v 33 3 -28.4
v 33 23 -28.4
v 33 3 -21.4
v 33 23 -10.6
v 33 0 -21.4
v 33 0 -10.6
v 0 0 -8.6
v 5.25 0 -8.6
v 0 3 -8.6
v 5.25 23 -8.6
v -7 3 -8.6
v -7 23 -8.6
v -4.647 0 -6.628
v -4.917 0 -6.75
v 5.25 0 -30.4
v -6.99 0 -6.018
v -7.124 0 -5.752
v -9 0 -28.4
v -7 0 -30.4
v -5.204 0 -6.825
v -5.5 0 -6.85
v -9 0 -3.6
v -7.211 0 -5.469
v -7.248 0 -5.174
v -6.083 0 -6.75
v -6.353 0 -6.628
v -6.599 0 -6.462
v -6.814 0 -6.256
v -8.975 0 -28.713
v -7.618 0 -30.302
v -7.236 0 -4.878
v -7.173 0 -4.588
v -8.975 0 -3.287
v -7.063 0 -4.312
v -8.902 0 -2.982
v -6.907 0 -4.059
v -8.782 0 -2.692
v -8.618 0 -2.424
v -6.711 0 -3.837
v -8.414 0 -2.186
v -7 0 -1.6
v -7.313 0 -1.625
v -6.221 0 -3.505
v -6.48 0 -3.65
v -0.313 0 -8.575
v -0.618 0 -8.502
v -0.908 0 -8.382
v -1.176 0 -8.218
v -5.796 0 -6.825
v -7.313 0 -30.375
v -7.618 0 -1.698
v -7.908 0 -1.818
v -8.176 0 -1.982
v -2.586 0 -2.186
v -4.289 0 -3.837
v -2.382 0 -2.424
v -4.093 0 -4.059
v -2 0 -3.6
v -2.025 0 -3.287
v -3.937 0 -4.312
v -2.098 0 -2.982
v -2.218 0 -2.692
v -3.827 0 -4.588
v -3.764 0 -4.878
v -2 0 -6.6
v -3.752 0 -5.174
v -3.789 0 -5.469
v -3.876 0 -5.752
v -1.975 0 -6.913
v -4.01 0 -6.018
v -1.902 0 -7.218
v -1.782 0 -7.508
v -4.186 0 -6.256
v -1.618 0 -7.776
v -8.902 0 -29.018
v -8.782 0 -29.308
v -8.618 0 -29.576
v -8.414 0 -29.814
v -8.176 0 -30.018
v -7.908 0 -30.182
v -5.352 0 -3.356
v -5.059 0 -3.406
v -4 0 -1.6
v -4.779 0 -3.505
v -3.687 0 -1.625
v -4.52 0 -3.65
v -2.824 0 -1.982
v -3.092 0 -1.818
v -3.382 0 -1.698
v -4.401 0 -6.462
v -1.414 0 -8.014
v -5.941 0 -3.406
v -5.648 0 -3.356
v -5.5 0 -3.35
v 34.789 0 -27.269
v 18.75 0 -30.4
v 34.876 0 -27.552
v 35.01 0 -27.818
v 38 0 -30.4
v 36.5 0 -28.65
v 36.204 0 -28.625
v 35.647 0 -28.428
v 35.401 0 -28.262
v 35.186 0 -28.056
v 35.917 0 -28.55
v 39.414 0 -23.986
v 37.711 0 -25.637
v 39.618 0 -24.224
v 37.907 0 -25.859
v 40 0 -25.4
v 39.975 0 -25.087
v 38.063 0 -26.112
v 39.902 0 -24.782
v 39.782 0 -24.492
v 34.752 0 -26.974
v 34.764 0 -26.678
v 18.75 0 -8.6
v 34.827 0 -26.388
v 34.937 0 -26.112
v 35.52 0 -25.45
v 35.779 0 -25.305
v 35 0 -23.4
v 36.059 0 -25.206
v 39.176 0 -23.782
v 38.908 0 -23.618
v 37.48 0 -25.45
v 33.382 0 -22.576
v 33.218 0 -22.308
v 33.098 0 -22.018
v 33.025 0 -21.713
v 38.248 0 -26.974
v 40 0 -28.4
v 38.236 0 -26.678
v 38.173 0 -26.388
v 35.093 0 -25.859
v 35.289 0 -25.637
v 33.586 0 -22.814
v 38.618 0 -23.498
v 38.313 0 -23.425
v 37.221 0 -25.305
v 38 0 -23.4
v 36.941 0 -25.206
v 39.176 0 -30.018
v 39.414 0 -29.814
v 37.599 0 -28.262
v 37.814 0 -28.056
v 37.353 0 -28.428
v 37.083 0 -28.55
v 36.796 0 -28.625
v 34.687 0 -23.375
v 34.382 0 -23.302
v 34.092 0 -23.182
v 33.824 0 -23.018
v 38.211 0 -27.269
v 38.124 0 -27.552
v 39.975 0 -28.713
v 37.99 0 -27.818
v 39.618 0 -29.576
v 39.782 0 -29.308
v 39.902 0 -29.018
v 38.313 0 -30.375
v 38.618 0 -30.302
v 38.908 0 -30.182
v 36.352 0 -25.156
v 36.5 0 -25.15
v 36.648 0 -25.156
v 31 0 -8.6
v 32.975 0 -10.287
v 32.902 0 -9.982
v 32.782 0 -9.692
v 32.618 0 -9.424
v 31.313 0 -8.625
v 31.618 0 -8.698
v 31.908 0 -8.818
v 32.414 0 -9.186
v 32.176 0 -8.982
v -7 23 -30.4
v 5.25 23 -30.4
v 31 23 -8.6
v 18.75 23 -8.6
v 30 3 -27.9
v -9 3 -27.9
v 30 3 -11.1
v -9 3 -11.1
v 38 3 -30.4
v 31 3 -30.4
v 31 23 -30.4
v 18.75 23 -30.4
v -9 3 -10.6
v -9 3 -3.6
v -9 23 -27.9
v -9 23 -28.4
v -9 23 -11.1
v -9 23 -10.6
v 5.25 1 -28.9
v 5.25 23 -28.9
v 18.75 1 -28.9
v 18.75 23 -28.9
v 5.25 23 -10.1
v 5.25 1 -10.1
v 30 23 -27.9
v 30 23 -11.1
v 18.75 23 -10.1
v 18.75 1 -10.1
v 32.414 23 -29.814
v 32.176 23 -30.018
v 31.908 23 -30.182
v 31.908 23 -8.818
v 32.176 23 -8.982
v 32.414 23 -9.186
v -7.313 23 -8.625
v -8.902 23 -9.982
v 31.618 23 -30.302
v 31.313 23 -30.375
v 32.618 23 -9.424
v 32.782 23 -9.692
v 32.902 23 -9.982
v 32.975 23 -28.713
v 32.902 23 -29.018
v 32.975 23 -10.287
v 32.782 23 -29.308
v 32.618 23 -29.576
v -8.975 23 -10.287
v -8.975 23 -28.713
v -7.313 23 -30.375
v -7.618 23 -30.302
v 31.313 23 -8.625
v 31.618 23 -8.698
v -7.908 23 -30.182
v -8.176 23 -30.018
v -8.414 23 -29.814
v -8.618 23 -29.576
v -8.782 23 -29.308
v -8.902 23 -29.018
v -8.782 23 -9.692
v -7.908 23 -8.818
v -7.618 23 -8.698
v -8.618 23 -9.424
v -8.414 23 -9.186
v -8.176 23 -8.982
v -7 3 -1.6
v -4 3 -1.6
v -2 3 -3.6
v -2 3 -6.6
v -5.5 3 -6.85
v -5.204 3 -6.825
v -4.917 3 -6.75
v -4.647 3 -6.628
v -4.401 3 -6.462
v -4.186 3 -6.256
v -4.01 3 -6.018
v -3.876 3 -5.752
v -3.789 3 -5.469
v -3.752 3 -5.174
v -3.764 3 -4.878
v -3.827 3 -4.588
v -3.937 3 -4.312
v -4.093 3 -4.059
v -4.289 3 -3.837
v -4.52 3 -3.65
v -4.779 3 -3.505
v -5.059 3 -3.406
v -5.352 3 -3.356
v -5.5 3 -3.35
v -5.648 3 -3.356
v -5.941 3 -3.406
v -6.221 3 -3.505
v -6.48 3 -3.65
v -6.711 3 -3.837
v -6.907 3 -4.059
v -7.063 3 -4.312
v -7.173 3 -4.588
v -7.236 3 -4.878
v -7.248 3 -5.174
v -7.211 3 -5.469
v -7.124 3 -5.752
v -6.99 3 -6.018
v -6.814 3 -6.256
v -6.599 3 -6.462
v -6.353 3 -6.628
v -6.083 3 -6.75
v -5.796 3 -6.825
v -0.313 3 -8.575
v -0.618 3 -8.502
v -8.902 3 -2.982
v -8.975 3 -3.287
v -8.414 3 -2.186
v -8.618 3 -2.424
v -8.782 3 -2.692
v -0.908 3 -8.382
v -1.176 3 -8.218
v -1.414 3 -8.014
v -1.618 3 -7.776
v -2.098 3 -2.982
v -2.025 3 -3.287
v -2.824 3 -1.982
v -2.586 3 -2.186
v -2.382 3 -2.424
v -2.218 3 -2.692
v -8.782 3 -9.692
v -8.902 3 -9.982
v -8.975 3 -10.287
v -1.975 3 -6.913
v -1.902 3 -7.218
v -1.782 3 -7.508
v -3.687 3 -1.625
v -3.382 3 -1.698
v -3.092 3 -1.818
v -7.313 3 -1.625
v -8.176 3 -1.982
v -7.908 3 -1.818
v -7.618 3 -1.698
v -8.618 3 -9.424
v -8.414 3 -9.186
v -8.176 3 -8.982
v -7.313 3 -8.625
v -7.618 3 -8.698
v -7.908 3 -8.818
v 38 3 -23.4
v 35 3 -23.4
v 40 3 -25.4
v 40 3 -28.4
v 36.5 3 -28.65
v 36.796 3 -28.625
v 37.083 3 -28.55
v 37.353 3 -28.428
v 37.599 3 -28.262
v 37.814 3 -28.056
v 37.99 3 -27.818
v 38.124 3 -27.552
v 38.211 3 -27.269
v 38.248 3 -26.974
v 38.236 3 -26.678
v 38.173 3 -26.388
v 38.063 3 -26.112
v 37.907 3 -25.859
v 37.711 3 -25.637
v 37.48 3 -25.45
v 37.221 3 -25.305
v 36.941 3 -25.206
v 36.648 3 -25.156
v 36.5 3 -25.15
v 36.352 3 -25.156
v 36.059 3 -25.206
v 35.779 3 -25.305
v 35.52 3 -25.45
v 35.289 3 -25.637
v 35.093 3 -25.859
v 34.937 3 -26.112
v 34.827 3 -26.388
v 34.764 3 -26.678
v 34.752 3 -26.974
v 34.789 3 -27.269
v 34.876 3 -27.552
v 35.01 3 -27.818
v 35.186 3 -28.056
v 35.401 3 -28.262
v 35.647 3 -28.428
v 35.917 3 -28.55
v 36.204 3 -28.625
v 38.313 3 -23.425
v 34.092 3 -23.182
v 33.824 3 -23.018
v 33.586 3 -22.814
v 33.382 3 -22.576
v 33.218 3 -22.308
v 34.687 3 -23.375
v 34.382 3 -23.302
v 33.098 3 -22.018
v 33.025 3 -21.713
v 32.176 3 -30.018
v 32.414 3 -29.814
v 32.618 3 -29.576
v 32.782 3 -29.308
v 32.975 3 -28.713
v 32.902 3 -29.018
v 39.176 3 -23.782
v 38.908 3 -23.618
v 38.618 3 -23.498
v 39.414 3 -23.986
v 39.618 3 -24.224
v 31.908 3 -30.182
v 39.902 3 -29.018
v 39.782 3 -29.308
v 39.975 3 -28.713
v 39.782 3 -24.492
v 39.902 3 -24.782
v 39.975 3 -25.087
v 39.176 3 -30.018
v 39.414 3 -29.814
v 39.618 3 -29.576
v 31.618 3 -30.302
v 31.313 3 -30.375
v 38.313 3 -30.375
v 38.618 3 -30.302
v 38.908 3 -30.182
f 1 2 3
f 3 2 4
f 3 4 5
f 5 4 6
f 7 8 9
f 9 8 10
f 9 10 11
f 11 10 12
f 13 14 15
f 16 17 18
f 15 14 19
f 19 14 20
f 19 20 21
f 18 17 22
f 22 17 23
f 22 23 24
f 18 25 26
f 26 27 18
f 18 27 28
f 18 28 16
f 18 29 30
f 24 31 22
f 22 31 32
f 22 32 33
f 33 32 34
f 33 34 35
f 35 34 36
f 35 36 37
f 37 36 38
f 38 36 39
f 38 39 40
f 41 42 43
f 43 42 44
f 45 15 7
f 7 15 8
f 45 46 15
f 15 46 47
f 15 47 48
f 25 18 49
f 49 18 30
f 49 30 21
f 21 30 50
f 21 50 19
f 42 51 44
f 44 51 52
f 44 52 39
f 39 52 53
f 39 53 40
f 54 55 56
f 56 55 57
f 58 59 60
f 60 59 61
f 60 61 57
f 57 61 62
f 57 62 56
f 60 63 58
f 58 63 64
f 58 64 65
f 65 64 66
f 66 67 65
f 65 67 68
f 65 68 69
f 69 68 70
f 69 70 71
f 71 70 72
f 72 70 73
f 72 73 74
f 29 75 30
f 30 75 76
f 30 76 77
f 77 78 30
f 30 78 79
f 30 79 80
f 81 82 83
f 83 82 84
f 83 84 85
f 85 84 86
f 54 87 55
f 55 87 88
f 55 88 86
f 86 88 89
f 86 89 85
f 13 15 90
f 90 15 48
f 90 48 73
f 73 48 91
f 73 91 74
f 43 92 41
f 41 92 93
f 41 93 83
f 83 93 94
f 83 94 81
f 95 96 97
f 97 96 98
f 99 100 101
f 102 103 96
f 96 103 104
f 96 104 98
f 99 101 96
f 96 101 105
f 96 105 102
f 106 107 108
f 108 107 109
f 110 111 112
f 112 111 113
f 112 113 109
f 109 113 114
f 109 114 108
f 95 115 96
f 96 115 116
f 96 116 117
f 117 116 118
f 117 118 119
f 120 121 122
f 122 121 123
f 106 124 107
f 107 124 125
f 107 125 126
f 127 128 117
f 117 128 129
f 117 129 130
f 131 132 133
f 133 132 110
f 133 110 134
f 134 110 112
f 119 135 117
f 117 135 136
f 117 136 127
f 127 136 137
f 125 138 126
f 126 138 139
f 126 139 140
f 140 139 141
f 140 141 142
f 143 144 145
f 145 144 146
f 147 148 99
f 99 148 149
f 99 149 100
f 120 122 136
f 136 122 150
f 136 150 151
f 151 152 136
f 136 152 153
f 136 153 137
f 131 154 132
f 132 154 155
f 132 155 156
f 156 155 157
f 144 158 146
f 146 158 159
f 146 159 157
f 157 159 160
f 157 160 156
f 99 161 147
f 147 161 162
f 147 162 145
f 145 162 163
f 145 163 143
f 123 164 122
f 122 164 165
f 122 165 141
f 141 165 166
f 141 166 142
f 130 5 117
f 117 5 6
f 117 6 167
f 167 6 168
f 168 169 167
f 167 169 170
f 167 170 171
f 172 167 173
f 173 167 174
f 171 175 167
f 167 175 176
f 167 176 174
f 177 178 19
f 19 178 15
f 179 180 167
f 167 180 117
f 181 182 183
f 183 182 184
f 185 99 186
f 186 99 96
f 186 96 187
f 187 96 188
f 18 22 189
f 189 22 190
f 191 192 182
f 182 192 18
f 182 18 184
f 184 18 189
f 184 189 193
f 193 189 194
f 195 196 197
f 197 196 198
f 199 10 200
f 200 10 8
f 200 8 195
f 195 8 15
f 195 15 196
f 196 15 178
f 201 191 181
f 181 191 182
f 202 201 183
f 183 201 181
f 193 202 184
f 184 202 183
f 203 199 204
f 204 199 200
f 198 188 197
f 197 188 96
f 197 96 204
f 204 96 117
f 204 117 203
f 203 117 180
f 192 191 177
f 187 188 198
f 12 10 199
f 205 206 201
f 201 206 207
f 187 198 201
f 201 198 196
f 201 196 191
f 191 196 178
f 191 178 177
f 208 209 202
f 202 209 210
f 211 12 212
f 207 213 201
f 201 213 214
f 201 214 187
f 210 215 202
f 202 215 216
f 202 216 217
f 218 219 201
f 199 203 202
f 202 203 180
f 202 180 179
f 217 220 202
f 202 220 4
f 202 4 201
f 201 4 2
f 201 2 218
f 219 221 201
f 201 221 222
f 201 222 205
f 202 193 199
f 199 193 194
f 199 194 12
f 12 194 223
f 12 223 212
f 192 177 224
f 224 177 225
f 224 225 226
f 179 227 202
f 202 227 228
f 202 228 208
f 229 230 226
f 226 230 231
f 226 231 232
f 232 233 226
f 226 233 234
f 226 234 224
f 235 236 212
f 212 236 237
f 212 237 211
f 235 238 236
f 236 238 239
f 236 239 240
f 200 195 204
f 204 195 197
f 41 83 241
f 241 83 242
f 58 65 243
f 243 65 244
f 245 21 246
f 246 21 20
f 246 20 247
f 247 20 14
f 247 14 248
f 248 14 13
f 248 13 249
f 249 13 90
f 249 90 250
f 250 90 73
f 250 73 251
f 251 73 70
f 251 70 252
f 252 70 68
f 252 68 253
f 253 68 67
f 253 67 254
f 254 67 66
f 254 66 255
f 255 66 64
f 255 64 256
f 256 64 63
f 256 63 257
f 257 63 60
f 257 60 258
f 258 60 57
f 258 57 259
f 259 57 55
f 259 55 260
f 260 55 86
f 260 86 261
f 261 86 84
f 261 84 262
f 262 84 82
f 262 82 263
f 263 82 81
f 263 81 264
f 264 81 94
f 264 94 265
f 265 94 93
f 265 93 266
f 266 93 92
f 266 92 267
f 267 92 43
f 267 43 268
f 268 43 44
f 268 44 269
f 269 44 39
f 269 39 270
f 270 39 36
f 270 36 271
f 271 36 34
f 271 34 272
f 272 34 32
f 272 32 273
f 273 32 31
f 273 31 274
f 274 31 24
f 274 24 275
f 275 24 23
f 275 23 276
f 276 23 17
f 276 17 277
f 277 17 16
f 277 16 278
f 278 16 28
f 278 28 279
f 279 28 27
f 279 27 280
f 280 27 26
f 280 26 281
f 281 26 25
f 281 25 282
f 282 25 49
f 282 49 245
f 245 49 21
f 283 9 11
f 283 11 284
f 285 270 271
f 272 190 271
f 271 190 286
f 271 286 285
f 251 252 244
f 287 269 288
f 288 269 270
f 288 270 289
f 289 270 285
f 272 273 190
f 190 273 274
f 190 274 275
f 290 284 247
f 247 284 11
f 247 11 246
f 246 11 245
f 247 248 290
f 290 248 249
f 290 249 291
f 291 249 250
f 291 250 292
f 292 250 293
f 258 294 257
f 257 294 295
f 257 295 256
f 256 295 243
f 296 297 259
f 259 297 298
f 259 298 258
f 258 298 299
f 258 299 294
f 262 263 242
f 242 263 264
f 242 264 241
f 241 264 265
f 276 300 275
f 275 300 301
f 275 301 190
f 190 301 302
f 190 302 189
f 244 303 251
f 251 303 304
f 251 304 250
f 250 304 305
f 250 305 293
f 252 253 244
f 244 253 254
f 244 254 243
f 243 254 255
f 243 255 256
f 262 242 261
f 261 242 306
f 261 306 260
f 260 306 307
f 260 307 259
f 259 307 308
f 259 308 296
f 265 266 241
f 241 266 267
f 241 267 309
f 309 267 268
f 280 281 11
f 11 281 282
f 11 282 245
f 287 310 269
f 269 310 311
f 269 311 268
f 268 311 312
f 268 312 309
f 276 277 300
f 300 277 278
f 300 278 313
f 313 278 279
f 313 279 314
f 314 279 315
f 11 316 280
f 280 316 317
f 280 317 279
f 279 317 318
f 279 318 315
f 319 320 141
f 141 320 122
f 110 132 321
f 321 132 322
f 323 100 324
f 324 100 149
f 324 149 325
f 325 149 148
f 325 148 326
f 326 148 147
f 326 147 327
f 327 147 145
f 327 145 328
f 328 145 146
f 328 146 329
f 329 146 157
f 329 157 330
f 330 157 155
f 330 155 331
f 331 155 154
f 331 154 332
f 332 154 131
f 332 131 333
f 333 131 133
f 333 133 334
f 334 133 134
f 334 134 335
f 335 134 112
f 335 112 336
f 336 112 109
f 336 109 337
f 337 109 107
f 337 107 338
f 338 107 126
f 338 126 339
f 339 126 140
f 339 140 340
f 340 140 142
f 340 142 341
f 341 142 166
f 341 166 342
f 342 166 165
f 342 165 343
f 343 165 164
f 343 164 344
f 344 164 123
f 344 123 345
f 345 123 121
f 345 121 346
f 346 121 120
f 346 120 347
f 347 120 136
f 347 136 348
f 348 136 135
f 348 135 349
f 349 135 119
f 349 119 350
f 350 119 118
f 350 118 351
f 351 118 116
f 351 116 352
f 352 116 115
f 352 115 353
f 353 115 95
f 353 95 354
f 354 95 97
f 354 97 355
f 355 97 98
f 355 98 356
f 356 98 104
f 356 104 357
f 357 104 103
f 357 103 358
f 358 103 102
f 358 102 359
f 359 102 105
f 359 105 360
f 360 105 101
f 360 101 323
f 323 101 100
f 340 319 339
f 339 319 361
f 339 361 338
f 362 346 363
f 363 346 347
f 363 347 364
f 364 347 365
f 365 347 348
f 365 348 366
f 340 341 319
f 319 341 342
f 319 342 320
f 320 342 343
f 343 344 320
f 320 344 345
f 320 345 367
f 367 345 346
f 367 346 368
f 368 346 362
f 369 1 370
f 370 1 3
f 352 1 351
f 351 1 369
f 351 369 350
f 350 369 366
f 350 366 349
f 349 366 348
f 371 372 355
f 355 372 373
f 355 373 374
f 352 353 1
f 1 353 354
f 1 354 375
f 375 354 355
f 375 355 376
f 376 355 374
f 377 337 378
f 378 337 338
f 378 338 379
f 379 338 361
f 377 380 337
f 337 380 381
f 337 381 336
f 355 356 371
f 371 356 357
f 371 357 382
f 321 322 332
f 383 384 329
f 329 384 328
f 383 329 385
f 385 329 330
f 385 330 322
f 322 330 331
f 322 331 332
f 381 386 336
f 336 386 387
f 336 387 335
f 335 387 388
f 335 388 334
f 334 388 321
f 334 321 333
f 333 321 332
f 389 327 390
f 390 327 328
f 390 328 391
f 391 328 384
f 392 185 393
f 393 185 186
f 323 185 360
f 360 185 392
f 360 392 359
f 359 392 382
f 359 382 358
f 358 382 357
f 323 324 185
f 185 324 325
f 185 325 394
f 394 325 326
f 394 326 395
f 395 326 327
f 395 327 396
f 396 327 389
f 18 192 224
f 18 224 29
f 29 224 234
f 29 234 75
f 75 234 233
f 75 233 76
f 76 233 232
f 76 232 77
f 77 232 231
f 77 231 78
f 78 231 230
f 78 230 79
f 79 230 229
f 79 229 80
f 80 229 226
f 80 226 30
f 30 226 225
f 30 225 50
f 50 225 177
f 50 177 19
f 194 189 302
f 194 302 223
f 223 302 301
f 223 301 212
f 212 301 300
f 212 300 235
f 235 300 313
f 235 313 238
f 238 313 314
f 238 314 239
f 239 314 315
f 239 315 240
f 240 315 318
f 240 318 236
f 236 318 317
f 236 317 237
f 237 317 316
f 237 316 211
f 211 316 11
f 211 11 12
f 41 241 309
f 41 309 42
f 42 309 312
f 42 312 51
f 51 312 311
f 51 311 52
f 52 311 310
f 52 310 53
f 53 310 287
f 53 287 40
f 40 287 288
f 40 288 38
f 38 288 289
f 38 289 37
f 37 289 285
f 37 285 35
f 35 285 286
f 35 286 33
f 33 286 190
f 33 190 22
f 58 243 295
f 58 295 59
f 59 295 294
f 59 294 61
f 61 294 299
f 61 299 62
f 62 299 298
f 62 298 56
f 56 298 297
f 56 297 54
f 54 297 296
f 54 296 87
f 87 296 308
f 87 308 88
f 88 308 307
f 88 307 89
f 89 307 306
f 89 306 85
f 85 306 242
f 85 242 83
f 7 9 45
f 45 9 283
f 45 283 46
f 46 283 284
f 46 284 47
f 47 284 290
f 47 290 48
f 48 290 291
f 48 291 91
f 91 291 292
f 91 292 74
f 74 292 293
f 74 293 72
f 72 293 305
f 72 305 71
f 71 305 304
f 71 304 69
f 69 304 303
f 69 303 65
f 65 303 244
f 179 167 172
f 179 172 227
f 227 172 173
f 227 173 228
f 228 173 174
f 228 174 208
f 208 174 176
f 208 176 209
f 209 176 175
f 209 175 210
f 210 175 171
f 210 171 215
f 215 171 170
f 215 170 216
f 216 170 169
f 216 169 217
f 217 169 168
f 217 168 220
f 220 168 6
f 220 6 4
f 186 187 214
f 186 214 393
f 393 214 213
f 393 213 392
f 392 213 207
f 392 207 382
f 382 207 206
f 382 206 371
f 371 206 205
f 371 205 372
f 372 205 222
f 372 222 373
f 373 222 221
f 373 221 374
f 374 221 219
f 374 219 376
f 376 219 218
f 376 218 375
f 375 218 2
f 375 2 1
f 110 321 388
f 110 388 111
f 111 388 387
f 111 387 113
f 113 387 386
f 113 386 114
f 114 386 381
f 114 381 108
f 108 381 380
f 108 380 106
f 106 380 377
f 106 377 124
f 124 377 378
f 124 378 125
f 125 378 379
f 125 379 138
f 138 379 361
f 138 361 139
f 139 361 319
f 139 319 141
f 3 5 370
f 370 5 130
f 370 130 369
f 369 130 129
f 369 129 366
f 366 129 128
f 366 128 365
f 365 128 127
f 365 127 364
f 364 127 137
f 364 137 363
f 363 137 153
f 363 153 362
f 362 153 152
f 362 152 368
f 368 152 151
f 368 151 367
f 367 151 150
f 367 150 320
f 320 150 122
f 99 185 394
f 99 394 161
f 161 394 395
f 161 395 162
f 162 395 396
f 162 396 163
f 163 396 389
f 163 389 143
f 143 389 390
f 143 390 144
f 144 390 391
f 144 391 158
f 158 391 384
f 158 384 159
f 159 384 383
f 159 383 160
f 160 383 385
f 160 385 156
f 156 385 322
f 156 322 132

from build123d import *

# Parameters (mm, degrees)
SKETCH1_W               = 3.5
SKETCH1_H               = 1
SKETCH1_H_2             = 1.5
SKETCH1_W_2             = 13.5
SKETCH1_W_3             = 11.25
SKETCH1_H_3             = 16.8
BOSS_EXTRUDE1_DEPTH     = 3
BOSS_EXTRUDE2_START     = 3
SKETCH1_5_W             = 3.5
SKETCH1_5_H             = 1
SKETCH1_5_H_2           = 1.5
SKETCH1_5_W_2           = 13.5
BOSS_EXTRUDE2_DEPTH     = 20
SKETCH1_7_W             = 13.5
SKETCH1_7_H             = 1.5
CUT_EXTRUDE1_DEPTH      = 24
CUT_EXTRUDE1_DEPTH_BACK = 1
SKETCH1_8_W             = 13.5
SKETCH1_8_H             = 16.8
SKETCH1_8_H_2           = 1.5
SKETCH1_8_H_3           = 1
CUT_EXTRUDE2_DEPTH      = 1
SKETCH2_W               = 7
SKETCH2_H               = 7
SKETCH2_R               = 1.75
BOSS_EXTRUDE3_DEPTH     = 3
FILLET1_R               = 2


with BuildPart() as part:
    # Sketch1 → Boss-Extrude1 (new body)
    with BuildSketch(Plane(origin=(0, 0, 0), x_dir=(1, 0, 0), z_dir=(0, 1, 0))):
        Polygon((-5.5, 11.1), (5.25, 11.1), (5.25, 27.9), (-9, 27.9), (-9, 11.1), align=None)
        Polygon((-9, 27.9), (5.25, 27.9), (5.25, 28.9), (5.25, 30.4), (-2, 30.4), (-9, 30.4), align=None)
        Polygon((-5.5, 8.6), (5.25, 8.6), (5.25, 10.1), (5.25, 11.1), (-5.5, 11.1), (-5.5, 9.6), align=None)
        with Locations((-7.25, 9.1)):
            Rectangle(SKETCH1_W, SKETCH1_H)
        with Locations((-7.25, 10.35)):
            Rectangle(SKETCH1_W, SKETCH1_H_2)
        with Locations((12, 10.6)):
            Rectangle(SKETCH1_W_2, SKETCH1_H)
        with Locations((12, 9.35)):
            Rectangle(SKETCH1_W_2, SKETCH1_H_2)
        Polygon((18.75, 10.1), (18.75, 8.6), (30, 8.6), (33, 8.6), (33, 11.1), (30, 11.1), (18.75, 11.1), align=None)
        Polygon((30, 11.1), (33, 11.1), (33, 30.4), (18.75, 30.4), (18.75, 28.9), (18.75, 27.9), (30, 27.9), align=None)
        with Locations((12, 28.4)):
            Rectangle(SKETCH1_W_2, SKETCH1_H)
        with Locations((12, 29.65)):
            Rectangle(SKETCH1_W_2, SKETCH1_H_2)
        with Locations((24.375, 19.5)):
            Rectangle(SKETCH1_W_3, SKETCH1_H_3)
        with Locations((12, 19.5)):
            Rectangle(SKETCH1_W_2, SKETCH1_H_3)
    extrude(amount=BOSS_EXTRUDE1_DEPTH)

    # Sketch1<5> → Boss-Extrude2 (add)
    with BuildSketch(Plane(origin=(0, 0, 0), x_dir=(1, 0, 0), z_dir=(0, 1, 0)).offset(BOSS_EXTRUDE2_START)):
        Polygon((-9, 27.9), (5.25, 27.9), (5.25, 28.9), (5.25, 30.4), (-2, 30.4), (-9, 30.4), align=None)
        Polygon((-5.5, 8.6), (5.25, 8.6), (5.25, 10.1), (5.25, 11.1), (-5.5, 11.1), (-5.5, 9.6), align=None)
        with Locations((-7.25, 9.1)):
            Rectangle(SKETCH1_5_W, SKETCH1_5_H)
        with Locations((-7.25, 10.35)):
            Rectangle(SKETCH1_5_W, SKETCH1_5_H_2)
        Polygon((18.75, 10.1), (18.75, 8.6), (30, 8.6), (33, 8.6), (33, 11.1), (30, 11.1), (18.75, 11.1), align=None)
        with Locations((12, 10.6)):
            Rectangle(SKETCH1_5_W_2, SKETCH1_5_H)
        Polygon((30, 11.1), (33, 11.1), (33, 30.4), (18.75, 30.4), (18.75, 28.9), (18.75, 27.9), (30, 27.9), align=None)
        with Locations((12, 28.4)):
            Rectangle(SKETCH1_5_W_2, SKETCH1_5_H)
    extrude(amount=BOSS_EXTRUDE2_DEPTH)

    # Sketch1<7> → Cut-Extrude1 (cut, two sides)
    with BuildSketch(Plane(origin=(0, 0, 0), x_dir=(1, 0, 0), z_dir=(0, 1, 0))) as cut_extrude1_sk:
        with Locations((12, 29.65)):
            Rectangle(SKETCH1_7_W, SKETCH1_7_H)
        with Locations((12, 9.35)):
            Rectangle(SKETCH1_7_W, SKETCH1_7_H)
    extrude(amount=CUT_EXTRUDE1_DEPTH, mode=Mode.SUBTRACT)
    extrude(cut_extrude1_sk.sketch, amount=-CUT_EXTRUDE1_DEPTH_BACK, mode=Mode.SUBTRACT)

    # Sketch1<8> → Cut-Extrude2 (cut)
    with BuildSketch(Plane(origin=(0, 0, 0), x_dir=(1, 0, 0), z_dir=(0, 1, 0))):
        with Locations((12, 19.5)):
            Rectangle(SKETCH1_8_W, SKETCH1_8_H)
        with Locations((12, 29.65)):
            Rectangle(SKETCH1_8_W, SKETCH1_8_H_2)
        with Locations((12, 28.4)):
            Rectangle(SKETCH1_8_W, SKETCH1_8_H_3)
        with Locations((12, 9.35)):
            Rectangle(SKETCH1_8_W, SKETCH1_8_H_2)
        with Locations((12, 10.6)):
            Rectangle(SKETCH1_8_W, SKETCH1_8_H_3)
    extrude(amount=CUT_EXTRUDE2_DEPTH, mode=Mode.SUBTRACT)

    # Sketch2 → Boss-Extrude3 (add)
    with BuildSketch(Plane(origin=(0, 0, 0), x_dir=(-1, 0, 0), z_dir=(0, 1, 0))):
        with Locations((5.5, -5.1)):
            Rectangle(SKETCH2_W, SKETCH2_H)
        with Locations((5.5, -5.1)):
            Circle(SKETCH2_R, mode=Mode.SUBTRACT)
        with Locations((-36.5, -26.9)):
            Rectangle(SKETCH2_W, SKETCH2_H)
        with Locations((-36.5, -26.9)):
            Circle(SKETCH2_R, mode=Mode.SUBTRACT)
    extrude(amount=BOSS_EXTRUDE3_DEPTH)

    # Fillet1
    fillet1_edges = [part.edges().sort_by_distance(p)[0] for p in [
        (33, 11.5, -8.6),
        (-9, 13, -8.6),
        (-9, 11.5, -30.4),
        (33, 13, -30.4),
        (-9, 1.5, -1.6),
        (-2, 1.5, -1.6),
        (-2, 1.5, -8.6),
        (33, 1.5, -23.4),
        (40, 1.5, -23.4),
        (40, 1.5, -30.4),
    ]]
    fillet(fillet1_edges, radius=FILLET1_R)


solid = part.part
